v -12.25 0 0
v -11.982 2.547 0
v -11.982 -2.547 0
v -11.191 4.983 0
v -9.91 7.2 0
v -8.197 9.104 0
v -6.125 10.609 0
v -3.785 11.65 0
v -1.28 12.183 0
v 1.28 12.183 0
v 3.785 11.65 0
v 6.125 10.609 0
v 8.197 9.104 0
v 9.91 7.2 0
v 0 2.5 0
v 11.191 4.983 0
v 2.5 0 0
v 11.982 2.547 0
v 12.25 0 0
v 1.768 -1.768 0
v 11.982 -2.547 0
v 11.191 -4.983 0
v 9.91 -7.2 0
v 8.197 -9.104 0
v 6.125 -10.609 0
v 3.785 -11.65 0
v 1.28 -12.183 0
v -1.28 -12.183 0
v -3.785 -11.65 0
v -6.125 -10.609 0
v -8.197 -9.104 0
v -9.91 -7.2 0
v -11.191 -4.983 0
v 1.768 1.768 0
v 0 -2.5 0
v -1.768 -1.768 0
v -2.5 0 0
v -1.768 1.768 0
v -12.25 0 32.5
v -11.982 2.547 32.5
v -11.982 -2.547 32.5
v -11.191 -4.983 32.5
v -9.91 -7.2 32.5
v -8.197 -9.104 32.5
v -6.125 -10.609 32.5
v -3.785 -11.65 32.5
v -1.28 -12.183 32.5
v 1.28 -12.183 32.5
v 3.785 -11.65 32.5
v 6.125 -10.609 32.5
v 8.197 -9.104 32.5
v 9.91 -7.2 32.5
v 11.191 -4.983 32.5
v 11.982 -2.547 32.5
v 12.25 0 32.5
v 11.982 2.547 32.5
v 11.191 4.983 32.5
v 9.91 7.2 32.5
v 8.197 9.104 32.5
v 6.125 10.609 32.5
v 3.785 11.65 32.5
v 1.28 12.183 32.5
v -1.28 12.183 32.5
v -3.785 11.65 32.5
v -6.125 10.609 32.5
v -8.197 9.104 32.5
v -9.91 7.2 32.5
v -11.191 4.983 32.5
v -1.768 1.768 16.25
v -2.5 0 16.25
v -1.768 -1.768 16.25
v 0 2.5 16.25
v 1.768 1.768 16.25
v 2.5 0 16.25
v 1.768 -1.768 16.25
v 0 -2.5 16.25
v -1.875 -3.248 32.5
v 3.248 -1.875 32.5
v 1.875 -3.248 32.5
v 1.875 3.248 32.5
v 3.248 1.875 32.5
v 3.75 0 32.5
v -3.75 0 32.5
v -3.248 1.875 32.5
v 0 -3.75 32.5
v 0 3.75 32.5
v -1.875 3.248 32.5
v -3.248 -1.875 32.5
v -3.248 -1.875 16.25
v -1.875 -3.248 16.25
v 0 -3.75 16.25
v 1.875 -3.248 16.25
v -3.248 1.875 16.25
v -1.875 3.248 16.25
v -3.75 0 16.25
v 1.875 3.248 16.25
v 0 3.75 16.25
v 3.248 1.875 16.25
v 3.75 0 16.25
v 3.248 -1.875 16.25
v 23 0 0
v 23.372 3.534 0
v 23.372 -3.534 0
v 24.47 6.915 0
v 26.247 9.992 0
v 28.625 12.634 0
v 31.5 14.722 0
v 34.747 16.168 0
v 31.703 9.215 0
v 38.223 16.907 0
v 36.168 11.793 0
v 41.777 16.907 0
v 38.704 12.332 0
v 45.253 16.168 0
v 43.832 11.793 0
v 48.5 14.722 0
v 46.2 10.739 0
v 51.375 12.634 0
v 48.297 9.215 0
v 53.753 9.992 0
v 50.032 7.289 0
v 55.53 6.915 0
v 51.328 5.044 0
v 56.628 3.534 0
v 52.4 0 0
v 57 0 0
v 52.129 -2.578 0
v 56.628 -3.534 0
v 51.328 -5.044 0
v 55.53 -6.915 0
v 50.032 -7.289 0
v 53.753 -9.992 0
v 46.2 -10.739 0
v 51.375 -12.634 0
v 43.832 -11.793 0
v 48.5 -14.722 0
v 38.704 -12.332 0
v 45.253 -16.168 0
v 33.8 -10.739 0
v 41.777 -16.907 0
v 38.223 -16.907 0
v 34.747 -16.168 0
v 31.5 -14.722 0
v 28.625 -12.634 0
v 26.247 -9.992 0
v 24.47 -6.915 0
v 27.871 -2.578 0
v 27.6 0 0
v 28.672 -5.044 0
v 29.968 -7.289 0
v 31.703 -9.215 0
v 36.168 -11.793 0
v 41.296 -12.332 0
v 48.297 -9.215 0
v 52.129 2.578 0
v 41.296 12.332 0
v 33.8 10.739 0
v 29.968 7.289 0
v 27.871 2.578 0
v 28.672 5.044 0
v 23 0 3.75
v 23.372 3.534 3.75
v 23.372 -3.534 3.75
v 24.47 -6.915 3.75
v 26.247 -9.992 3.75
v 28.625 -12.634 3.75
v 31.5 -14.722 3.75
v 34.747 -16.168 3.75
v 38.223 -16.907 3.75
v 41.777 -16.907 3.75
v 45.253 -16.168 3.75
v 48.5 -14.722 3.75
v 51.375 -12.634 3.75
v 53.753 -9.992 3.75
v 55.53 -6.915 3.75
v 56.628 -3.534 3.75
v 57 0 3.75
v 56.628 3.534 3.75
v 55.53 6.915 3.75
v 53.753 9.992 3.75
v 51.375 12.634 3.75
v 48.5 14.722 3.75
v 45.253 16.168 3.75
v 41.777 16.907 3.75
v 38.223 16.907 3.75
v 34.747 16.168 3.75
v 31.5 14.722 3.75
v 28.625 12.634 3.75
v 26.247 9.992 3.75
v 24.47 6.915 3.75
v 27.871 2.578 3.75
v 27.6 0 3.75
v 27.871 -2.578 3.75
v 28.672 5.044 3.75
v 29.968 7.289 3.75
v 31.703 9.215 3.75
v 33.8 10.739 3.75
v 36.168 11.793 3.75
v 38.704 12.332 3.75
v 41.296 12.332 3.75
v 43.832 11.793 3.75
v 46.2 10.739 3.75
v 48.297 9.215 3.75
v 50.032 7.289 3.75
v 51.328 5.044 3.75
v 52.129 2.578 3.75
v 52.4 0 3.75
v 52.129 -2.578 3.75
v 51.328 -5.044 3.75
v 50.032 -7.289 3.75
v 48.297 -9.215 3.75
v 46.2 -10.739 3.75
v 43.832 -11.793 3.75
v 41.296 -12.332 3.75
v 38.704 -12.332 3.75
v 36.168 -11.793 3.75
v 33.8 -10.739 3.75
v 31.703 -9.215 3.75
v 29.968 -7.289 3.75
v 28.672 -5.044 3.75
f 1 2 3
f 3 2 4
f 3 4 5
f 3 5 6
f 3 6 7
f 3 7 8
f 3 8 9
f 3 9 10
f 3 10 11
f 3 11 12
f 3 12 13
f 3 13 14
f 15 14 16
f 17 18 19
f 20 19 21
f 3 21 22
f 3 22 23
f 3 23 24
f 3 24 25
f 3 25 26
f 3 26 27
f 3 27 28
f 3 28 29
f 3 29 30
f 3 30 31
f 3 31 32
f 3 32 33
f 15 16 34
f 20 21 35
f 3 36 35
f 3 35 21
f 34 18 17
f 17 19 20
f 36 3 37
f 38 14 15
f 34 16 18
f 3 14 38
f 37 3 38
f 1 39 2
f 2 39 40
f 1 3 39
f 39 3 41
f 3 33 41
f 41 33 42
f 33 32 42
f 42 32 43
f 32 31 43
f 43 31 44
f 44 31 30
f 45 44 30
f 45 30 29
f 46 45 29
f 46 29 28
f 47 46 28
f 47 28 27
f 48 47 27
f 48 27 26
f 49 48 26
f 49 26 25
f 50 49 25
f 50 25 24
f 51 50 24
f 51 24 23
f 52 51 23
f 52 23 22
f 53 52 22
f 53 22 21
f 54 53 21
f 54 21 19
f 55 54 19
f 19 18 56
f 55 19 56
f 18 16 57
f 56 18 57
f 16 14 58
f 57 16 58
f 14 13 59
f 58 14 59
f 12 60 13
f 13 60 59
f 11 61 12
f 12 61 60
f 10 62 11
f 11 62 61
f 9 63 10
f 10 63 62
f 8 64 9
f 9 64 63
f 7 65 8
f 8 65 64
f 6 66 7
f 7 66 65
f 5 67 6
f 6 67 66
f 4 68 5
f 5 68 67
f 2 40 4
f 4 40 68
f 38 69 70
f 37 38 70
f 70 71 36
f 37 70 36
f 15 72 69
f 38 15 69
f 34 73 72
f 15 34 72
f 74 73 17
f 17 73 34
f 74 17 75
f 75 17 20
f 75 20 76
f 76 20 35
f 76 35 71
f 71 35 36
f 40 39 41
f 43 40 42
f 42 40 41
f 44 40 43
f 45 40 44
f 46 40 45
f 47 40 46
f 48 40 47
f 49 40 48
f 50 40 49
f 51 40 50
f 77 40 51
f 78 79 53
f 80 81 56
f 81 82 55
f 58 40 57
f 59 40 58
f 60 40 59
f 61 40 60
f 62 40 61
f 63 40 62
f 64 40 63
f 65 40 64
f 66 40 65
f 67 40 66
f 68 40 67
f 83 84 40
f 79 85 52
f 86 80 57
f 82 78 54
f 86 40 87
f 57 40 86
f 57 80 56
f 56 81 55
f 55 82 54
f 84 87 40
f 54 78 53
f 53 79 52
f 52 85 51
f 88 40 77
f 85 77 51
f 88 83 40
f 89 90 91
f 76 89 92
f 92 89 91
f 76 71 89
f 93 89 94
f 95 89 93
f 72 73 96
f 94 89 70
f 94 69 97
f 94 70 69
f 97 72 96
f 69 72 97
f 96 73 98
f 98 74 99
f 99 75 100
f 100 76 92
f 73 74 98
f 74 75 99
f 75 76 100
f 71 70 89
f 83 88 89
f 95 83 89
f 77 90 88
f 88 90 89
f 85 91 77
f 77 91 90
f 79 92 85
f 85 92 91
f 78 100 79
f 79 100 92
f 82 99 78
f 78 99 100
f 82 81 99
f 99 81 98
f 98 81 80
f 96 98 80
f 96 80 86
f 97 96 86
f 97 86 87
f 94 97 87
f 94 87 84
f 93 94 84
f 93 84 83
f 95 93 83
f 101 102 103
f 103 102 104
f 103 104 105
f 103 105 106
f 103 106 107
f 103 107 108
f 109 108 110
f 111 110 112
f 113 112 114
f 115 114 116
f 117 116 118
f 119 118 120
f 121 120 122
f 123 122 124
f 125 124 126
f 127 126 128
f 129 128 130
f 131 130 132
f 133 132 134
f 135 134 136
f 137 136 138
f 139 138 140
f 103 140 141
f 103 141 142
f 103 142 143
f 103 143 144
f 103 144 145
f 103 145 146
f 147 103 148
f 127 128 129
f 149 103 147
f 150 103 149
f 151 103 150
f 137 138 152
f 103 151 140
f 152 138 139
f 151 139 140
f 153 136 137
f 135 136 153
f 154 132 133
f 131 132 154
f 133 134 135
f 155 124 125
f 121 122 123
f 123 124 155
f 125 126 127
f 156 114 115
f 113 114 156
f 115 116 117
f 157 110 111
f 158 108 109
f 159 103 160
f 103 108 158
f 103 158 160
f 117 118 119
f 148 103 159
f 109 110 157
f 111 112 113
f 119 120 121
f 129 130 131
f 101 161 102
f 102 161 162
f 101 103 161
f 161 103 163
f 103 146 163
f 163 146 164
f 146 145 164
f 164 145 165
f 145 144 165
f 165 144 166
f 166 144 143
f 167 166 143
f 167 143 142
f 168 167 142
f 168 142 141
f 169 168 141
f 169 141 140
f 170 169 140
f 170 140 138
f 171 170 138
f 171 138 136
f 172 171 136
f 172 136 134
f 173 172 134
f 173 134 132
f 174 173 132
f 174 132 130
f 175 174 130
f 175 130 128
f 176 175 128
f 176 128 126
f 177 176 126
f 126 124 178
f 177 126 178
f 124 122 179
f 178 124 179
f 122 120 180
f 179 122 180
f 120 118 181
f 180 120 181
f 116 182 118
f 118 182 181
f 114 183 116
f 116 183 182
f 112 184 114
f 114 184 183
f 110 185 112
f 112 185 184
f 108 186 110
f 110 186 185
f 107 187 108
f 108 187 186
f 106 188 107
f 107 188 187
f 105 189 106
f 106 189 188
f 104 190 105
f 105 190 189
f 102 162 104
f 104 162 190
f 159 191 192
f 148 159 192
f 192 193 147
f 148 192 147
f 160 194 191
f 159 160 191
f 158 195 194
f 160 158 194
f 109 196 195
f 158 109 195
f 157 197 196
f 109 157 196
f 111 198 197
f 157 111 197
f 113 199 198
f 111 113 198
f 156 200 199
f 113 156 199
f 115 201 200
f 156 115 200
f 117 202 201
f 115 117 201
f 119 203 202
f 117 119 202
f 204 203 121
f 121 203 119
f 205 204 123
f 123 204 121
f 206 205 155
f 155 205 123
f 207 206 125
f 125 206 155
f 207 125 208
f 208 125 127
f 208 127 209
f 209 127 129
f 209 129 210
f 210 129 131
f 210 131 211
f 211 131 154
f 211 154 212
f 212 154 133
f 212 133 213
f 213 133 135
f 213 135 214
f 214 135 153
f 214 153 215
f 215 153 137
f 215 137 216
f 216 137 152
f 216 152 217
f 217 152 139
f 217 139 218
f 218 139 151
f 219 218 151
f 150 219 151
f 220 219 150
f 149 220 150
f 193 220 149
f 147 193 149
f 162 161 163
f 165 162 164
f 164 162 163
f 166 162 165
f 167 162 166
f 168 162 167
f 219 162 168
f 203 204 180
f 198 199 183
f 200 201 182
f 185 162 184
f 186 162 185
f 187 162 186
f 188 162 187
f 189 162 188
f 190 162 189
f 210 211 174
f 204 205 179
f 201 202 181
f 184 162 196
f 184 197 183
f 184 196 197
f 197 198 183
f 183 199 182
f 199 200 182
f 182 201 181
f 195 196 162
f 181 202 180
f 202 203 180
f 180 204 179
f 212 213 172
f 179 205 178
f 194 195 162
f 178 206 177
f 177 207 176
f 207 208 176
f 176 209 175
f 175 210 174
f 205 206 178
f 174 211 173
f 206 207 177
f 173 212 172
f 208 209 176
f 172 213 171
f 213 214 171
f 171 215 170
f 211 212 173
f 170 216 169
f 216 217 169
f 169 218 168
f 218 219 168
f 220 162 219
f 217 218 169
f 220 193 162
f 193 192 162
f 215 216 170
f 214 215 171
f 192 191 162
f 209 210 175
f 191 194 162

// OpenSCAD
union() {
difference() {
difference() {
cylinder(32.5,12.25,12.25,center=false); 
cylinder(50,2.5,2.5,center=false); 
}
translate([0,0,16.25]) cylinder(50,3.75,3.75,center=false); 
}
translate([40,0,0]) difference() {
cylinder(3.75,17,17,center=false); 
cylinder(3.75,12.4,12.4,center=false); 
}
}
